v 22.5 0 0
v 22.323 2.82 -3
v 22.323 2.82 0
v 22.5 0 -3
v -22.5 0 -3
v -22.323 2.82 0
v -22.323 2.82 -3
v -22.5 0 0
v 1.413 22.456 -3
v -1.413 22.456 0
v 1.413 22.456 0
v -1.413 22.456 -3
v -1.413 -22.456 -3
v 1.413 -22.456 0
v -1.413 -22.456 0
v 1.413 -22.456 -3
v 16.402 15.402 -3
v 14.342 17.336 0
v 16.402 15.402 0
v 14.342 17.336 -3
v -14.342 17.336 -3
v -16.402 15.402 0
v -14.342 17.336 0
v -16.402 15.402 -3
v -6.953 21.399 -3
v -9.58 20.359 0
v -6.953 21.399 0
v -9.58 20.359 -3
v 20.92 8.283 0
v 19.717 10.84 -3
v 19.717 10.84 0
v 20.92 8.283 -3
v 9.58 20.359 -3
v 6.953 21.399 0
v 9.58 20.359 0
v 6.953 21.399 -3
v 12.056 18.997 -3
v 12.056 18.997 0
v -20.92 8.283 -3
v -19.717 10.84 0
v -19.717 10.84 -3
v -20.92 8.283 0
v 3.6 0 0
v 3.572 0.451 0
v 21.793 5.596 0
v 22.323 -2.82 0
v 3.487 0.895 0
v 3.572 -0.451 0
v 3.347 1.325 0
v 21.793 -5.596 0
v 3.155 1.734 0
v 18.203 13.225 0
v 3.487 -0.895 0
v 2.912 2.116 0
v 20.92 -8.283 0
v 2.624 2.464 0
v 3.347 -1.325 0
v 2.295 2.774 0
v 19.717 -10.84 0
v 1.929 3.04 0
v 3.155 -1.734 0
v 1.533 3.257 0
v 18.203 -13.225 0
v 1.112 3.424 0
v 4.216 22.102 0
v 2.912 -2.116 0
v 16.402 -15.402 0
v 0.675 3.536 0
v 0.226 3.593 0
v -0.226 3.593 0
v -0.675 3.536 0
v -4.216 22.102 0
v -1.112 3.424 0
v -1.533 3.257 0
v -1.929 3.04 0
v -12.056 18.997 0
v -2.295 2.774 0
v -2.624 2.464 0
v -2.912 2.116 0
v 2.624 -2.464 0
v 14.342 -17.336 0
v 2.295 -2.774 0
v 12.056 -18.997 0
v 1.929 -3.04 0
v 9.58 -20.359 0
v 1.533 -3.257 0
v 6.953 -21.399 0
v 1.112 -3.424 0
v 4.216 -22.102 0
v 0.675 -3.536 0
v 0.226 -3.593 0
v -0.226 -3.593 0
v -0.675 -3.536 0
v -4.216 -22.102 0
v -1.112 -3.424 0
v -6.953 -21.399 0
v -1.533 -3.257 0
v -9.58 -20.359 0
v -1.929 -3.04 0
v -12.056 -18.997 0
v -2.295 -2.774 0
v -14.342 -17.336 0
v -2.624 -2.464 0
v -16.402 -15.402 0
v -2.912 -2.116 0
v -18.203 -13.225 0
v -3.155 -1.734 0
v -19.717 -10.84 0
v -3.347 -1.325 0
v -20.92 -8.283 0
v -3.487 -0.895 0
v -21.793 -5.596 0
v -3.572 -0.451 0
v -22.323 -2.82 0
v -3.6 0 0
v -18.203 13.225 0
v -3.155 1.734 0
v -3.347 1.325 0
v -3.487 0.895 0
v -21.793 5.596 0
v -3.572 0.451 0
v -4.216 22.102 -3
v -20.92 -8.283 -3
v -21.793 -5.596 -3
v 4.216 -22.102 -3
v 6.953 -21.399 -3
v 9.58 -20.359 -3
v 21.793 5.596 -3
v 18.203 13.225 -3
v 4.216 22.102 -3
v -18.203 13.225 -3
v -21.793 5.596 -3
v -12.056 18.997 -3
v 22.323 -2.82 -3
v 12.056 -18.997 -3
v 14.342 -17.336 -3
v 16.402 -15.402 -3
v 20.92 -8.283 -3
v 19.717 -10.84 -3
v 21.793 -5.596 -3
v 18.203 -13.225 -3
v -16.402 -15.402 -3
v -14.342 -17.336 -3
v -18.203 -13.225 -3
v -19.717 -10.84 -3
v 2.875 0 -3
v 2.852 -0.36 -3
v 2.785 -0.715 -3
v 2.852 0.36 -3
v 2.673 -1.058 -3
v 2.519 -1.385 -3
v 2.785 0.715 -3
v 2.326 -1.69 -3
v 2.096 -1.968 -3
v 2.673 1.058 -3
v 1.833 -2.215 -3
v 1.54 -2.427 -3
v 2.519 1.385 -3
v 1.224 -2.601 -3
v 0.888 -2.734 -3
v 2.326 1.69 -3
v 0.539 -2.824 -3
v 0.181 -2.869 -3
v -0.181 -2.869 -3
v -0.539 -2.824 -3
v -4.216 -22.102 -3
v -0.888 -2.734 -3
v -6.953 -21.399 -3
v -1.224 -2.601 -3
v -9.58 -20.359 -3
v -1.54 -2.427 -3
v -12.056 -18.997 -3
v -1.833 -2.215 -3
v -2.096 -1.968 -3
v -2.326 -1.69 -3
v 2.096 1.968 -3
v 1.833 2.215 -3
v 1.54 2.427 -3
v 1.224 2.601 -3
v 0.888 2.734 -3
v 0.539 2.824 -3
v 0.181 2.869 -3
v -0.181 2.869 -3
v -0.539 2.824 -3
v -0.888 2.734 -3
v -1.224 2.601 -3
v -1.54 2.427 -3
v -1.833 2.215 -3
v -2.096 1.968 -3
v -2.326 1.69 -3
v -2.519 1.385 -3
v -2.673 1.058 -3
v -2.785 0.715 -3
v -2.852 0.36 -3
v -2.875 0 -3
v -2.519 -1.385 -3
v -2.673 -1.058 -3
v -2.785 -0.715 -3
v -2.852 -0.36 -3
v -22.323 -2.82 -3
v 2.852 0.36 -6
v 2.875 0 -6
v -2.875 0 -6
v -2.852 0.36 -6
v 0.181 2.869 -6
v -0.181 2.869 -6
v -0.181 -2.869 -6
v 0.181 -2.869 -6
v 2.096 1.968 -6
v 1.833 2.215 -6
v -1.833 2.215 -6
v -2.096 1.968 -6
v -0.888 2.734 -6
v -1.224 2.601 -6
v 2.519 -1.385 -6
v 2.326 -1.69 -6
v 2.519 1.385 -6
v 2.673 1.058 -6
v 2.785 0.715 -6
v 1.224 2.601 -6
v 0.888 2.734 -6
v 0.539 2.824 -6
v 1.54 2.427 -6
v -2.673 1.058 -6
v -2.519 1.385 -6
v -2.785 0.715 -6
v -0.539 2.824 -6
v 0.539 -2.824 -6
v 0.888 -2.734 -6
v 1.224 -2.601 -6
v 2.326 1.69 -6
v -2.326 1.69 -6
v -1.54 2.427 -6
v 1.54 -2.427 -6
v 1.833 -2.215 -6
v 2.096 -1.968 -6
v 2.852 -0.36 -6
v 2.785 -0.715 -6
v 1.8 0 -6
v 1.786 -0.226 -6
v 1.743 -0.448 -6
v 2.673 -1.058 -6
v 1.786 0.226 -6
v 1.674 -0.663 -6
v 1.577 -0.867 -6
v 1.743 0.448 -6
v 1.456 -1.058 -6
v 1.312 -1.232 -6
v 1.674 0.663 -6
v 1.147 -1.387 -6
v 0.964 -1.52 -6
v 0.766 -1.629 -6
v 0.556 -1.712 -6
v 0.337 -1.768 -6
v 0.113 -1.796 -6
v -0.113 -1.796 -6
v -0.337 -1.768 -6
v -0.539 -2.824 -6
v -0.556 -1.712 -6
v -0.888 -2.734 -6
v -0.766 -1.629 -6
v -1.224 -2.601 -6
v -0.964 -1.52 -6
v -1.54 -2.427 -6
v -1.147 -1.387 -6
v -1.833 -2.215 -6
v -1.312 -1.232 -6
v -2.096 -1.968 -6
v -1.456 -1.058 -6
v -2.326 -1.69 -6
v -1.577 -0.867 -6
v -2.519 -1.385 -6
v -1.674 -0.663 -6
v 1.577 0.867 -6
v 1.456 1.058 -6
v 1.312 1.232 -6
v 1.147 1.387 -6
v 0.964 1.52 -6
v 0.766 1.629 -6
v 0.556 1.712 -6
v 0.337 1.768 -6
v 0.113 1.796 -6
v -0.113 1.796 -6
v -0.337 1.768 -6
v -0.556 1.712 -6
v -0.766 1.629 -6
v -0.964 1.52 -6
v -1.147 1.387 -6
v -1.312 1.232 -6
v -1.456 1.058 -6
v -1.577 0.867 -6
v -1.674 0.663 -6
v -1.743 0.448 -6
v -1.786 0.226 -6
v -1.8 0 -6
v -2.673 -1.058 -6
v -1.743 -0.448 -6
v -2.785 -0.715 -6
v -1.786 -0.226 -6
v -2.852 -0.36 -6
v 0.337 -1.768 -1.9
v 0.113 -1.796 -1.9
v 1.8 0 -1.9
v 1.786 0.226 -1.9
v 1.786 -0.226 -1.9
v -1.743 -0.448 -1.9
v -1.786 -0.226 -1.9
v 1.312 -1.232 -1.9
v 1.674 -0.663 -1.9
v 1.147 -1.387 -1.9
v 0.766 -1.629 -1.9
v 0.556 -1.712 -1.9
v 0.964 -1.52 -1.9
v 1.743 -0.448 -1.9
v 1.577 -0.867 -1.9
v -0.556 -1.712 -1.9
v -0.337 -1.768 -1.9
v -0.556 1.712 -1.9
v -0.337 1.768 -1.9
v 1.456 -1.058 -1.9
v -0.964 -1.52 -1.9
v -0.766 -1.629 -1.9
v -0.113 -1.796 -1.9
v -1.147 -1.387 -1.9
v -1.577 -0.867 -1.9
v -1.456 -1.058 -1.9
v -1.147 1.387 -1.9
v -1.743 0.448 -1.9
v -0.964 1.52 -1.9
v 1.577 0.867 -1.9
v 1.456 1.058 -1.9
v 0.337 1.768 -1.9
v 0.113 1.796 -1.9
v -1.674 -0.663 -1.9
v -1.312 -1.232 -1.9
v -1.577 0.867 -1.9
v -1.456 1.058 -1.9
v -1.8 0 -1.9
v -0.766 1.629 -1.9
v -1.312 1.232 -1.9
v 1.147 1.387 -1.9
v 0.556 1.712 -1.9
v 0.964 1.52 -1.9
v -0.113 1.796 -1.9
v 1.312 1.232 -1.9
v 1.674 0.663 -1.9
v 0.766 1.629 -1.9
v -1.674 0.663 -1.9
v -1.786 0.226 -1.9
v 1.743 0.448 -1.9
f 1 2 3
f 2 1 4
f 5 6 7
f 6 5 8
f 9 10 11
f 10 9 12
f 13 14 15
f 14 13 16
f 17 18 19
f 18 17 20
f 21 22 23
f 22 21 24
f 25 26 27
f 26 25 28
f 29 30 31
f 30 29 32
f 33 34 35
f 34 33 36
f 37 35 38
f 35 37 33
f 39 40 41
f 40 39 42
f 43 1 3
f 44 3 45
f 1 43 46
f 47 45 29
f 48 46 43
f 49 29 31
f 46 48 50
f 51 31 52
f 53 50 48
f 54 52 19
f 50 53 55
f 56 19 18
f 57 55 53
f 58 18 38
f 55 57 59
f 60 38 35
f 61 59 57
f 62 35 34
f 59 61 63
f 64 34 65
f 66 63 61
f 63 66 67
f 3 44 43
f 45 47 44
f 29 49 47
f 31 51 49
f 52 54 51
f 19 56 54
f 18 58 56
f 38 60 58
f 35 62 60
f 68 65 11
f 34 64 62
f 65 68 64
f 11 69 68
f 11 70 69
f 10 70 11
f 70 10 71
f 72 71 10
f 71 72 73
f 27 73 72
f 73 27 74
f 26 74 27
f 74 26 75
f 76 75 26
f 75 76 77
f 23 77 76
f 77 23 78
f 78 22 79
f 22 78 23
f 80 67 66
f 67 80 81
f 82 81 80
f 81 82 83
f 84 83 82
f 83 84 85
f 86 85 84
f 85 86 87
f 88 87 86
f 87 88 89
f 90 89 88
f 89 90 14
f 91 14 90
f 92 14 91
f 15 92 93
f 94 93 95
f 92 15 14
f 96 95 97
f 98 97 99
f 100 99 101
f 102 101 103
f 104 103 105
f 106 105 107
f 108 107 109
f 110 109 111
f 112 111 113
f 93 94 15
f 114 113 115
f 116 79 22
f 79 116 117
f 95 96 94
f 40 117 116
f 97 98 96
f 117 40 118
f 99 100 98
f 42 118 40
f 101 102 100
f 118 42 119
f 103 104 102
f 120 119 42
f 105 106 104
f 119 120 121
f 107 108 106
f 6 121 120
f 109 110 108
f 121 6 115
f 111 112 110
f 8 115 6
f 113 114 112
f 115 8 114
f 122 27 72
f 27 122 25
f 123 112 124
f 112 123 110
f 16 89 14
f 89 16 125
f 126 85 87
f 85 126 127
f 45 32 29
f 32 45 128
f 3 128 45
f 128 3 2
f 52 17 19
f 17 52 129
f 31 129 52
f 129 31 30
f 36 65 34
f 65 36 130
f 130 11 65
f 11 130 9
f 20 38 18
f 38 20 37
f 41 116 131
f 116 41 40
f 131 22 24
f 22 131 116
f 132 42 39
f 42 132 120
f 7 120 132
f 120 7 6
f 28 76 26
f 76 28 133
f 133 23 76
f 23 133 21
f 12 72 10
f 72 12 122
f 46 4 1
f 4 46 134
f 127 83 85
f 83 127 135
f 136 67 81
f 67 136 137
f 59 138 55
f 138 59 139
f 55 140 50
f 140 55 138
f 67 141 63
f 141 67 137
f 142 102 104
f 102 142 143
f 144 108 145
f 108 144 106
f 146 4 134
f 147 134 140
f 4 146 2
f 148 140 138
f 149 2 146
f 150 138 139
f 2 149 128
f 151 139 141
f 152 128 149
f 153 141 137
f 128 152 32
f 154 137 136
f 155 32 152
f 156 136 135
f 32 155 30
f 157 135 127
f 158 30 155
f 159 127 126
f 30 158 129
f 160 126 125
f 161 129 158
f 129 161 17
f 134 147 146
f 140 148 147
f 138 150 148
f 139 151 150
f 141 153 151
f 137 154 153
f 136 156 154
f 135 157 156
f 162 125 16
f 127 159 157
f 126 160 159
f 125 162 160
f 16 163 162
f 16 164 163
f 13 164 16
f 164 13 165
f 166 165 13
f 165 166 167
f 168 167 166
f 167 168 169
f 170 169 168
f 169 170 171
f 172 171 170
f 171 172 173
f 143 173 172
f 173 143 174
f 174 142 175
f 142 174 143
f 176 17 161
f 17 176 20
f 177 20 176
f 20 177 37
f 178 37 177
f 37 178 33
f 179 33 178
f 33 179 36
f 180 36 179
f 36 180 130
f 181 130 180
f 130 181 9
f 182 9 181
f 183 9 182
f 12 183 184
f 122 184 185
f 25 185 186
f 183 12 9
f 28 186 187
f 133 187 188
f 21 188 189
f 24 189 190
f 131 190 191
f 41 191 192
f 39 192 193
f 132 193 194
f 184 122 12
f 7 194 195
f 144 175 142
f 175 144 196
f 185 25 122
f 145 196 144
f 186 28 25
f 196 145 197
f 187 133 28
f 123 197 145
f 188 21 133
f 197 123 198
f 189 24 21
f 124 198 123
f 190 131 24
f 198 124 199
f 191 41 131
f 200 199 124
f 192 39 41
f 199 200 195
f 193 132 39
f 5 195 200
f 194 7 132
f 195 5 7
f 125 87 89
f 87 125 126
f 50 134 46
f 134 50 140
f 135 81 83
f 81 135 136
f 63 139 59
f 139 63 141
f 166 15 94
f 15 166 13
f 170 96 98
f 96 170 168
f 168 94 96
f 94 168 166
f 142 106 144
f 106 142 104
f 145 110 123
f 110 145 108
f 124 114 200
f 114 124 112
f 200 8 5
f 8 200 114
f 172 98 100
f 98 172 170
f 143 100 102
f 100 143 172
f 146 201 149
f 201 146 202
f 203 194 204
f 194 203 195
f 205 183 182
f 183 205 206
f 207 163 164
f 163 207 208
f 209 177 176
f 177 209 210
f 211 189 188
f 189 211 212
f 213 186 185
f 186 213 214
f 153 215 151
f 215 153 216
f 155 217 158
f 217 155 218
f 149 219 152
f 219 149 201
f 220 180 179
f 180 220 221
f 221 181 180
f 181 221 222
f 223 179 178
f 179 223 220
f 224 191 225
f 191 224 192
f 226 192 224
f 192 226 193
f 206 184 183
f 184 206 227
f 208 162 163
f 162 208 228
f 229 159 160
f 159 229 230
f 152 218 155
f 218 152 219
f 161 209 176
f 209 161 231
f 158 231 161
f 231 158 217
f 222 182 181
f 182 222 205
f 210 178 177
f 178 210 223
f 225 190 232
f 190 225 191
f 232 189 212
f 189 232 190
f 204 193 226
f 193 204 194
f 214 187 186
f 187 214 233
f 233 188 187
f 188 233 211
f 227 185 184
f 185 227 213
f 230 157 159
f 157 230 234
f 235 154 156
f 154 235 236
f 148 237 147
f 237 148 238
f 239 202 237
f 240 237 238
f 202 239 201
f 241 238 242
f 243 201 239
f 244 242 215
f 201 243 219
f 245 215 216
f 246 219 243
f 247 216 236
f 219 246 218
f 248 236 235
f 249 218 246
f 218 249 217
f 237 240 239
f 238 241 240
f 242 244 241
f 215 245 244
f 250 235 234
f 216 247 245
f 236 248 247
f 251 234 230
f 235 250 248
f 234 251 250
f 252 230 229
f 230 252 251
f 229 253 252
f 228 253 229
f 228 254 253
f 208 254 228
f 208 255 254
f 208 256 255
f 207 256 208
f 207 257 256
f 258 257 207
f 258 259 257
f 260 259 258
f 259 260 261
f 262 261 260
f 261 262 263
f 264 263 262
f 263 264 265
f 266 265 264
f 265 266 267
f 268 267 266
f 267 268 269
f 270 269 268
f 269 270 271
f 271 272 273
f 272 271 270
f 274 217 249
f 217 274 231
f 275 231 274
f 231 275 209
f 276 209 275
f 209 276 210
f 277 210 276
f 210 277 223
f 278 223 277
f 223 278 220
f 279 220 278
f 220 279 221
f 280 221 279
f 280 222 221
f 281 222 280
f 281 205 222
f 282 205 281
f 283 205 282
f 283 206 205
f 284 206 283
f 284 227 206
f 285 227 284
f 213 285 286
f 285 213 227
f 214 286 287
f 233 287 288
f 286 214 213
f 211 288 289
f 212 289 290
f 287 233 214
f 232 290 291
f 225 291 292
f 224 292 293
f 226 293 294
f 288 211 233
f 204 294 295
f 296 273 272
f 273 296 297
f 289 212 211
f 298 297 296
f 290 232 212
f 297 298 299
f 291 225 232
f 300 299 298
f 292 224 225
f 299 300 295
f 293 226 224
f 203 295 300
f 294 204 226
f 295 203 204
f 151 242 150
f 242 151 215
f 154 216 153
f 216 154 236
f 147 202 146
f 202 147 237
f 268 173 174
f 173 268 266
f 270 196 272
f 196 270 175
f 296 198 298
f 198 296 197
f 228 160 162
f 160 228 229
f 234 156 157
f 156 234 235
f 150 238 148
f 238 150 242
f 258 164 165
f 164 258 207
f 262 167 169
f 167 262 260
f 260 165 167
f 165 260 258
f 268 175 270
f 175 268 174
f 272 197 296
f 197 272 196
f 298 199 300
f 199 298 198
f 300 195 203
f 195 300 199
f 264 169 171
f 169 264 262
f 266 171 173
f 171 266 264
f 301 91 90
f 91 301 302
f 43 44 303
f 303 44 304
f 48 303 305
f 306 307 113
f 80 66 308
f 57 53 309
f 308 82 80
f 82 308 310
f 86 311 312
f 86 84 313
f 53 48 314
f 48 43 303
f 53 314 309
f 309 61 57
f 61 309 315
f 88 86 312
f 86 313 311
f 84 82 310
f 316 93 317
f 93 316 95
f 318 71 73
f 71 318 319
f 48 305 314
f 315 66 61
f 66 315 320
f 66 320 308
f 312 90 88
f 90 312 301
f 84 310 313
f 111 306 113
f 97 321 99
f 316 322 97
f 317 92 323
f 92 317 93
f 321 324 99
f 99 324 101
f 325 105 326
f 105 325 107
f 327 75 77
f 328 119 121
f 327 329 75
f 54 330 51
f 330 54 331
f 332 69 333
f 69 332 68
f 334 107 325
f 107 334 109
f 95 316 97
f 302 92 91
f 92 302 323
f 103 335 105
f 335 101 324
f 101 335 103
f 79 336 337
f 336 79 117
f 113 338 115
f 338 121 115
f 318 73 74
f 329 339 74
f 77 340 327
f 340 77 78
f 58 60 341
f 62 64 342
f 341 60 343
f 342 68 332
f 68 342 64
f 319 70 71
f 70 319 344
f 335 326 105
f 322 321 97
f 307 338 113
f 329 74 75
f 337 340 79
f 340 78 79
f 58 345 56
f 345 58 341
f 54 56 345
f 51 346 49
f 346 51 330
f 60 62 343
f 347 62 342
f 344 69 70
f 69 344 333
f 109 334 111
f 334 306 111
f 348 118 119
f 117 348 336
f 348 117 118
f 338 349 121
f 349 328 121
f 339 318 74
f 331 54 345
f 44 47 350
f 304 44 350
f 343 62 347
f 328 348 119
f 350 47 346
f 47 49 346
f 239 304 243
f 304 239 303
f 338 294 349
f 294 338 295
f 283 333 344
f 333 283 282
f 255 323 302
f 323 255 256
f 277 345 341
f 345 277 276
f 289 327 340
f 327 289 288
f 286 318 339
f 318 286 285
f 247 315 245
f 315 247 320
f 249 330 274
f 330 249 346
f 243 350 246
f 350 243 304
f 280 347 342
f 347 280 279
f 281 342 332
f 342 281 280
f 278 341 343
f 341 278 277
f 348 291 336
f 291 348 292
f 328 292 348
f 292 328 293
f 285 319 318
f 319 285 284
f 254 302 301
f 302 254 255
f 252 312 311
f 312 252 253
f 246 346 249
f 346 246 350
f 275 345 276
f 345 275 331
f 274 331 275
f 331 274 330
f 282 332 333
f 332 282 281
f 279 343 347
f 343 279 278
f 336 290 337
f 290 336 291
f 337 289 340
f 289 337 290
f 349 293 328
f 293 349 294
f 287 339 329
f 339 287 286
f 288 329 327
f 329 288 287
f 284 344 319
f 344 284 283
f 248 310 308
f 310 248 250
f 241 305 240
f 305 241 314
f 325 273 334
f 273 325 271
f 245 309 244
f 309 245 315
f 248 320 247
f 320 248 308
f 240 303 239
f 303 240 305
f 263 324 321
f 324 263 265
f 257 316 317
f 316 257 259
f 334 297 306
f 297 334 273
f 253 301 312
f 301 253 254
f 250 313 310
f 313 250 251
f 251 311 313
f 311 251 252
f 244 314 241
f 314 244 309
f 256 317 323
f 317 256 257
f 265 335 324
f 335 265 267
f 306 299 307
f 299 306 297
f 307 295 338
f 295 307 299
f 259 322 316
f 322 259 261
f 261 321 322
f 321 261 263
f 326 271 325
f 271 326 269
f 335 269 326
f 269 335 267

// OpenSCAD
$fn = 50;

difference() {
	union() {
		translate(v = [0, 0, -3.0]) {
			cylinder(h = 3, r = 22.5);
		}
		#translate(v = [0, 0, -6.0]) {
			cylinder(h = 6, r = 2.875);
		}
	}
	union() {
		translate(v = [0, 0, 0]) {
			rotate(a = [0, 0, 0]) {
				difference() {
					union() {
						translate(v = [0, 0, -6.0]) {
							cylinder(h = 6, r = 1.5);
						}
						translate(v = [0, 0, -1.9]) {
							cylinder(h = 1.9, r1 = 1.8, r2 = 3.6);
						}
						translate(v = [0, 0, -6.0]) {
							cylinder(h = 6, r = 1.8);
						}
						translate(v = [0, 0, -6.0]) {
							cylinder(h = 6, r = 1.5);
						}
					}
					union();
				}
			}
		}
	}
}
